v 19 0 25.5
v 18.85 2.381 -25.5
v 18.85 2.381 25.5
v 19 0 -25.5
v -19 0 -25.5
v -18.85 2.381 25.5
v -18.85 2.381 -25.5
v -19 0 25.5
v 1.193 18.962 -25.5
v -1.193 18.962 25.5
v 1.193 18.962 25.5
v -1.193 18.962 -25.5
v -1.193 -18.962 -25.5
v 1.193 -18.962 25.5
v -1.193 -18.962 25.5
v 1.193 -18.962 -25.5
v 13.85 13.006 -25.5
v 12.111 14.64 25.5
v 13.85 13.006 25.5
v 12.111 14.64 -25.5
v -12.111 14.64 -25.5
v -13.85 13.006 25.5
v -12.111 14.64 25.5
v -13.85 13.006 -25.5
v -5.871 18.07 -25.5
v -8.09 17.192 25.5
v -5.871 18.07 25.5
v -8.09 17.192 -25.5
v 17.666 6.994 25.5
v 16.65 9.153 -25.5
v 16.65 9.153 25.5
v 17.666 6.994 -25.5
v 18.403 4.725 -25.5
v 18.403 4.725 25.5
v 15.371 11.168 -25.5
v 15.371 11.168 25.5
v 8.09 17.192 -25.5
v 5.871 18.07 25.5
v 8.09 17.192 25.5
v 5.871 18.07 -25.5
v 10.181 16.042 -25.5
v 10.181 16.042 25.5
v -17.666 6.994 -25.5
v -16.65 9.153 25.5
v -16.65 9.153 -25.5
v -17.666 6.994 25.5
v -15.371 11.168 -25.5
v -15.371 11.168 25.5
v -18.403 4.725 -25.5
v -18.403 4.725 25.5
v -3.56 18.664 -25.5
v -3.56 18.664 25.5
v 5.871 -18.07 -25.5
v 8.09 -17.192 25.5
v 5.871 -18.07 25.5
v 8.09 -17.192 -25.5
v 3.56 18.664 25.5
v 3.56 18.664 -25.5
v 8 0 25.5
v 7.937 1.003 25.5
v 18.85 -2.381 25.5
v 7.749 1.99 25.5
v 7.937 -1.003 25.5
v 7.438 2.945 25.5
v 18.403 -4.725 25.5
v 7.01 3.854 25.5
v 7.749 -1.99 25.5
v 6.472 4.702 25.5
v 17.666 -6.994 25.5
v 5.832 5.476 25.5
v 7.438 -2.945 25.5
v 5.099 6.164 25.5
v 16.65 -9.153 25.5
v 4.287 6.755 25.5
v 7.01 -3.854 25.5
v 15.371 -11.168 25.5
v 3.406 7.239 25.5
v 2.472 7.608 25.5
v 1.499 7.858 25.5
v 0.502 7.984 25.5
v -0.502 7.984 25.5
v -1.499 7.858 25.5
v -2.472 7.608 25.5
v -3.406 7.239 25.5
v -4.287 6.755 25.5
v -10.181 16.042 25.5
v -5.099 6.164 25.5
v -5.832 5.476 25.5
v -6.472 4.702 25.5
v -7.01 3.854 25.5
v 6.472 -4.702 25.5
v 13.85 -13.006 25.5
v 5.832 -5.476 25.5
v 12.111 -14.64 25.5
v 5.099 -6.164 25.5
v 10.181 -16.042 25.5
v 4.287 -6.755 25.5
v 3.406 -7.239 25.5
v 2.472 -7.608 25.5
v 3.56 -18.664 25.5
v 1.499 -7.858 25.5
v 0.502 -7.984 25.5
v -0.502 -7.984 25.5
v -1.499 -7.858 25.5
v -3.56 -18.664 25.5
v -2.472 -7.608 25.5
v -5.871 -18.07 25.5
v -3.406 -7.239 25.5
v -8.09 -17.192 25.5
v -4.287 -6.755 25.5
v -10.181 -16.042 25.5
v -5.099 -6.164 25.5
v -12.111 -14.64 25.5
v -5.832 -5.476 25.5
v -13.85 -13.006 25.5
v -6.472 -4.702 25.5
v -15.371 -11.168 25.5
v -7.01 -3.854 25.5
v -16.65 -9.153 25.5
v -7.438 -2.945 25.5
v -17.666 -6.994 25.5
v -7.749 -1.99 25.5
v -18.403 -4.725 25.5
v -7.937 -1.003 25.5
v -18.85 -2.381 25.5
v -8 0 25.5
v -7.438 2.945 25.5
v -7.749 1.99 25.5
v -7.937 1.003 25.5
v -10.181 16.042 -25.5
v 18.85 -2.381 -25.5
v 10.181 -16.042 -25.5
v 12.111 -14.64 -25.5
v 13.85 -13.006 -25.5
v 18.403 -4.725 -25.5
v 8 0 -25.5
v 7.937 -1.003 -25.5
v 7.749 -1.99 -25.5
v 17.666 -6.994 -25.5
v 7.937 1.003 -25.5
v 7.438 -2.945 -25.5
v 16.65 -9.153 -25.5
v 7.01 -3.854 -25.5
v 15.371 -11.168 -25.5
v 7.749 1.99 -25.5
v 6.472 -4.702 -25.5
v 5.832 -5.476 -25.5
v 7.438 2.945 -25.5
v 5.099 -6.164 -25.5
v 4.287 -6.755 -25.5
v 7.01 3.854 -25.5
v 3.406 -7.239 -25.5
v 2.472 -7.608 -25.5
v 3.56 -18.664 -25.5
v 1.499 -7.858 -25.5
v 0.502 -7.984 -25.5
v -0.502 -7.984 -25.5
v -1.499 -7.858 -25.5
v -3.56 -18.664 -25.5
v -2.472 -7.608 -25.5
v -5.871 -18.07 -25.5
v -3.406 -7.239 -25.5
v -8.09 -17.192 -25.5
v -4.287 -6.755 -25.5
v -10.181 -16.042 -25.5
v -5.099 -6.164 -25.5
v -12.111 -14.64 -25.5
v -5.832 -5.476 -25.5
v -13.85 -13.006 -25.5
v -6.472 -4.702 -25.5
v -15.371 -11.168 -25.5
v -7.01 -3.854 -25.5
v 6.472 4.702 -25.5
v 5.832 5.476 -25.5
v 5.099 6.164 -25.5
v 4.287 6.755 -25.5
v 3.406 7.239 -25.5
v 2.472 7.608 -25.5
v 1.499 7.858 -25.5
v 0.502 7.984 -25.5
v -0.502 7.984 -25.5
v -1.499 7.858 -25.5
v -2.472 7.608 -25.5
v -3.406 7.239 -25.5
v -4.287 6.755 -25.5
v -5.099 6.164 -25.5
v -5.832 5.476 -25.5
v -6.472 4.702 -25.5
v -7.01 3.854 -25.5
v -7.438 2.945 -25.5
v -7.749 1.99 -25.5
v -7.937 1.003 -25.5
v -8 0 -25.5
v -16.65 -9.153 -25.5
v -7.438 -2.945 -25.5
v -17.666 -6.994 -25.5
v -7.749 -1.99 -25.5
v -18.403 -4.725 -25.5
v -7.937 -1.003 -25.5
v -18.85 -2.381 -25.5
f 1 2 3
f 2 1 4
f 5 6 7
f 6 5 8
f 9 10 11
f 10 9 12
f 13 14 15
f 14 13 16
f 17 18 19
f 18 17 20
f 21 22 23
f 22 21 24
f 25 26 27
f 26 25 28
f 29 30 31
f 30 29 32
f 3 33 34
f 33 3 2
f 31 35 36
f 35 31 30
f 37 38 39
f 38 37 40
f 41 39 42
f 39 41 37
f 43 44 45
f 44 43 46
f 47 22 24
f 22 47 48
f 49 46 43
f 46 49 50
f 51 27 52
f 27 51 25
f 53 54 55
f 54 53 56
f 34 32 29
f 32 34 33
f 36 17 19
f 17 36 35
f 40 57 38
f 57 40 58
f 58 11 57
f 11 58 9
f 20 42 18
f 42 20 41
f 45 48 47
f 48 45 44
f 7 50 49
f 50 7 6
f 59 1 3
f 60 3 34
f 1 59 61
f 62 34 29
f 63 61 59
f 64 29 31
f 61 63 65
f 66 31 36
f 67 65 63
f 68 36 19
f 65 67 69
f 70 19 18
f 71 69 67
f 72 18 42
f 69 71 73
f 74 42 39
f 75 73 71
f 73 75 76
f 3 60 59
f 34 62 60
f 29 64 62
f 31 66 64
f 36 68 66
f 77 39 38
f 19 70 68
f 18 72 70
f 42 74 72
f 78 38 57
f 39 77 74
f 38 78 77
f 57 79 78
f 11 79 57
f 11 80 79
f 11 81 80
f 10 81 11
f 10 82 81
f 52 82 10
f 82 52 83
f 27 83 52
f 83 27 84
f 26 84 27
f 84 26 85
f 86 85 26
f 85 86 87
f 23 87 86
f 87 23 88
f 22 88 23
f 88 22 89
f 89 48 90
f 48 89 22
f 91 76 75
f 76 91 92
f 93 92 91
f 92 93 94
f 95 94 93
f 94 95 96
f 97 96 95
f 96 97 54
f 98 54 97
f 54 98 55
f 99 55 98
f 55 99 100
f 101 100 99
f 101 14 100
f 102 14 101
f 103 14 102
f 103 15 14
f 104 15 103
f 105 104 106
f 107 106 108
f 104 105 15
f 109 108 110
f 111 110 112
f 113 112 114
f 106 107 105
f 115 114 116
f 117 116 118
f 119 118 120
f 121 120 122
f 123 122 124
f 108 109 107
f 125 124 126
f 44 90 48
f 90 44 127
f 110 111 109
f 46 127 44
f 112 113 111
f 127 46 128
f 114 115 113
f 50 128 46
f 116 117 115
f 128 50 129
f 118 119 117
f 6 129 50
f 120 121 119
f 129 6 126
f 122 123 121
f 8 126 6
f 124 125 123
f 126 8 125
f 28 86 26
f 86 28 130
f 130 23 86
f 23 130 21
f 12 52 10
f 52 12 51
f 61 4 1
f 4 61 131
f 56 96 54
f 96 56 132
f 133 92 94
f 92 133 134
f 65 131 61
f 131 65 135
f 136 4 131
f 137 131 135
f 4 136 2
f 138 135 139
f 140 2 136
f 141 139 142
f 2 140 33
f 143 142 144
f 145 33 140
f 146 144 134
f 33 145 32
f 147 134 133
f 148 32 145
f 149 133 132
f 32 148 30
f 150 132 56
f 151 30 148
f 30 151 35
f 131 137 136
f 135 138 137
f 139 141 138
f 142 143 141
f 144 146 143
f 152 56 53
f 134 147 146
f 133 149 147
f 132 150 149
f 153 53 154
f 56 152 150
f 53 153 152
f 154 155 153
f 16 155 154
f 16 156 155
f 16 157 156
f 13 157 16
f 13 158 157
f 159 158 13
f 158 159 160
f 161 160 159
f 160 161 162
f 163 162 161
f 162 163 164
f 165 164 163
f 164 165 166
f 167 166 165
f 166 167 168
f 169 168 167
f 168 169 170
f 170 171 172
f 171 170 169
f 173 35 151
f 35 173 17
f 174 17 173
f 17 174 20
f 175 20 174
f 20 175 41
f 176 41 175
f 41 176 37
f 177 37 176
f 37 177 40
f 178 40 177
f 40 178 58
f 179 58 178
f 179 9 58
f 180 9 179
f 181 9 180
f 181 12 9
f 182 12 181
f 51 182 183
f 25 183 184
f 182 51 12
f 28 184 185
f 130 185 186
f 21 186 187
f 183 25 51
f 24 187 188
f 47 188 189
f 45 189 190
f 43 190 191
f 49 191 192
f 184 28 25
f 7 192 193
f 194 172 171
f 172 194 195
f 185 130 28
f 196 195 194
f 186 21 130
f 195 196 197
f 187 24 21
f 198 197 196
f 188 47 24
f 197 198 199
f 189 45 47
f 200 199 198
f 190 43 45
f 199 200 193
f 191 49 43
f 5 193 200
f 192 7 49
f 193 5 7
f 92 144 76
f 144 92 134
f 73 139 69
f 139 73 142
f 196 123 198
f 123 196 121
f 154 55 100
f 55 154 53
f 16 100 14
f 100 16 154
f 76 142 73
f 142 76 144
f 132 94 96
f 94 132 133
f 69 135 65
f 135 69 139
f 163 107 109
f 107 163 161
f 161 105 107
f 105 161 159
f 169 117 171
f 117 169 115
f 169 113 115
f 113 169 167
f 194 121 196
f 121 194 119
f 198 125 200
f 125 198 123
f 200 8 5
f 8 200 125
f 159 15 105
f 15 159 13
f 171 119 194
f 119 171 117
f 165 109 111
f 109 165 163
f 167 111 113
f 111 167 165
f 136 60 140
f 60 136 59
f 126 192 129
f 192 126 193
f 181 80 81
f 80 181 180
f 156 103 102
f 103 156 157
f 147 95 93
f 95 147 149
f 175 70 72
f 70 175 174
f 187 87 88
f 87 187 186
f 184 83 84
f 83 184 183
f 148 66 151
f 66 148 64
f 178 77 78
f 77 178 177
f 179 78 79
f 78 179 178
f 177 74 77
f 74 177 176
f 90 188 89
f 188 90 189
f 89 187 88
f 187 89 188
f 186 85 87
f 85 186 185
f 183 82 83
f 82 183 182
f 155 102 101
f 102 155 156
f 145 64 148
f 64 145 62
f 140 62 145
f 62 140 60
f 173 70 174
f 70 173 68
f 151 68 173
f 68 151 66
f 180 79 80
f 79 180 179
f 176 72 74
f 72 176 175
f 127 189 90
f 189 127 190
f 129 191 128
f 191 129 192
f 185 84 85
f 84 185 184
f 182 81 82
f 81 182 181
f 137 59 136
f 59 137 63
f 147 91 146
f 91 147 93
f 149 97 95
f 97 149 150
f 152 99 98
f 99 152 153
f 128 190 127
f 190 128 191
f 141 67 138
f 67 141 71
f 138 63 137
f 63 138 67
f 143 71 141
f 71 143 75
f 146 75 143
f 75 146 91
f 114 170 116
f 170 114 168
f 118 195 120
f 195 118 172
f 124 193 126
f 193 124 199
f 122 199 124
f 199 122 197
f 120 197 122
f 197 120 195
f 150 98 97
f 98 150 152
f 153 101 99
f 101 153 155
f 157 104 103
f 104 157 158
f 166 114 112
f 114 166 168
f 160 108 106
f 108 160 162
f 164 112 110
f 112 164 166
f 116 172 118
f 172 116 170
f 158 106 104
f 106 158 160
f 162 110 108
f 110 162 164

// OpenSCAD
$fn = 50;


difference() {
	union() {
		translate(v = [0, 0, -25.5000000000]) {
			cylinder(h = 51, r = 19.0000000000);
		}
	}
	union() {
		translate(v = [0, 0, -100.0000000000]) {
			cylinder(h = 200, r = 8);
		}
	}
}
